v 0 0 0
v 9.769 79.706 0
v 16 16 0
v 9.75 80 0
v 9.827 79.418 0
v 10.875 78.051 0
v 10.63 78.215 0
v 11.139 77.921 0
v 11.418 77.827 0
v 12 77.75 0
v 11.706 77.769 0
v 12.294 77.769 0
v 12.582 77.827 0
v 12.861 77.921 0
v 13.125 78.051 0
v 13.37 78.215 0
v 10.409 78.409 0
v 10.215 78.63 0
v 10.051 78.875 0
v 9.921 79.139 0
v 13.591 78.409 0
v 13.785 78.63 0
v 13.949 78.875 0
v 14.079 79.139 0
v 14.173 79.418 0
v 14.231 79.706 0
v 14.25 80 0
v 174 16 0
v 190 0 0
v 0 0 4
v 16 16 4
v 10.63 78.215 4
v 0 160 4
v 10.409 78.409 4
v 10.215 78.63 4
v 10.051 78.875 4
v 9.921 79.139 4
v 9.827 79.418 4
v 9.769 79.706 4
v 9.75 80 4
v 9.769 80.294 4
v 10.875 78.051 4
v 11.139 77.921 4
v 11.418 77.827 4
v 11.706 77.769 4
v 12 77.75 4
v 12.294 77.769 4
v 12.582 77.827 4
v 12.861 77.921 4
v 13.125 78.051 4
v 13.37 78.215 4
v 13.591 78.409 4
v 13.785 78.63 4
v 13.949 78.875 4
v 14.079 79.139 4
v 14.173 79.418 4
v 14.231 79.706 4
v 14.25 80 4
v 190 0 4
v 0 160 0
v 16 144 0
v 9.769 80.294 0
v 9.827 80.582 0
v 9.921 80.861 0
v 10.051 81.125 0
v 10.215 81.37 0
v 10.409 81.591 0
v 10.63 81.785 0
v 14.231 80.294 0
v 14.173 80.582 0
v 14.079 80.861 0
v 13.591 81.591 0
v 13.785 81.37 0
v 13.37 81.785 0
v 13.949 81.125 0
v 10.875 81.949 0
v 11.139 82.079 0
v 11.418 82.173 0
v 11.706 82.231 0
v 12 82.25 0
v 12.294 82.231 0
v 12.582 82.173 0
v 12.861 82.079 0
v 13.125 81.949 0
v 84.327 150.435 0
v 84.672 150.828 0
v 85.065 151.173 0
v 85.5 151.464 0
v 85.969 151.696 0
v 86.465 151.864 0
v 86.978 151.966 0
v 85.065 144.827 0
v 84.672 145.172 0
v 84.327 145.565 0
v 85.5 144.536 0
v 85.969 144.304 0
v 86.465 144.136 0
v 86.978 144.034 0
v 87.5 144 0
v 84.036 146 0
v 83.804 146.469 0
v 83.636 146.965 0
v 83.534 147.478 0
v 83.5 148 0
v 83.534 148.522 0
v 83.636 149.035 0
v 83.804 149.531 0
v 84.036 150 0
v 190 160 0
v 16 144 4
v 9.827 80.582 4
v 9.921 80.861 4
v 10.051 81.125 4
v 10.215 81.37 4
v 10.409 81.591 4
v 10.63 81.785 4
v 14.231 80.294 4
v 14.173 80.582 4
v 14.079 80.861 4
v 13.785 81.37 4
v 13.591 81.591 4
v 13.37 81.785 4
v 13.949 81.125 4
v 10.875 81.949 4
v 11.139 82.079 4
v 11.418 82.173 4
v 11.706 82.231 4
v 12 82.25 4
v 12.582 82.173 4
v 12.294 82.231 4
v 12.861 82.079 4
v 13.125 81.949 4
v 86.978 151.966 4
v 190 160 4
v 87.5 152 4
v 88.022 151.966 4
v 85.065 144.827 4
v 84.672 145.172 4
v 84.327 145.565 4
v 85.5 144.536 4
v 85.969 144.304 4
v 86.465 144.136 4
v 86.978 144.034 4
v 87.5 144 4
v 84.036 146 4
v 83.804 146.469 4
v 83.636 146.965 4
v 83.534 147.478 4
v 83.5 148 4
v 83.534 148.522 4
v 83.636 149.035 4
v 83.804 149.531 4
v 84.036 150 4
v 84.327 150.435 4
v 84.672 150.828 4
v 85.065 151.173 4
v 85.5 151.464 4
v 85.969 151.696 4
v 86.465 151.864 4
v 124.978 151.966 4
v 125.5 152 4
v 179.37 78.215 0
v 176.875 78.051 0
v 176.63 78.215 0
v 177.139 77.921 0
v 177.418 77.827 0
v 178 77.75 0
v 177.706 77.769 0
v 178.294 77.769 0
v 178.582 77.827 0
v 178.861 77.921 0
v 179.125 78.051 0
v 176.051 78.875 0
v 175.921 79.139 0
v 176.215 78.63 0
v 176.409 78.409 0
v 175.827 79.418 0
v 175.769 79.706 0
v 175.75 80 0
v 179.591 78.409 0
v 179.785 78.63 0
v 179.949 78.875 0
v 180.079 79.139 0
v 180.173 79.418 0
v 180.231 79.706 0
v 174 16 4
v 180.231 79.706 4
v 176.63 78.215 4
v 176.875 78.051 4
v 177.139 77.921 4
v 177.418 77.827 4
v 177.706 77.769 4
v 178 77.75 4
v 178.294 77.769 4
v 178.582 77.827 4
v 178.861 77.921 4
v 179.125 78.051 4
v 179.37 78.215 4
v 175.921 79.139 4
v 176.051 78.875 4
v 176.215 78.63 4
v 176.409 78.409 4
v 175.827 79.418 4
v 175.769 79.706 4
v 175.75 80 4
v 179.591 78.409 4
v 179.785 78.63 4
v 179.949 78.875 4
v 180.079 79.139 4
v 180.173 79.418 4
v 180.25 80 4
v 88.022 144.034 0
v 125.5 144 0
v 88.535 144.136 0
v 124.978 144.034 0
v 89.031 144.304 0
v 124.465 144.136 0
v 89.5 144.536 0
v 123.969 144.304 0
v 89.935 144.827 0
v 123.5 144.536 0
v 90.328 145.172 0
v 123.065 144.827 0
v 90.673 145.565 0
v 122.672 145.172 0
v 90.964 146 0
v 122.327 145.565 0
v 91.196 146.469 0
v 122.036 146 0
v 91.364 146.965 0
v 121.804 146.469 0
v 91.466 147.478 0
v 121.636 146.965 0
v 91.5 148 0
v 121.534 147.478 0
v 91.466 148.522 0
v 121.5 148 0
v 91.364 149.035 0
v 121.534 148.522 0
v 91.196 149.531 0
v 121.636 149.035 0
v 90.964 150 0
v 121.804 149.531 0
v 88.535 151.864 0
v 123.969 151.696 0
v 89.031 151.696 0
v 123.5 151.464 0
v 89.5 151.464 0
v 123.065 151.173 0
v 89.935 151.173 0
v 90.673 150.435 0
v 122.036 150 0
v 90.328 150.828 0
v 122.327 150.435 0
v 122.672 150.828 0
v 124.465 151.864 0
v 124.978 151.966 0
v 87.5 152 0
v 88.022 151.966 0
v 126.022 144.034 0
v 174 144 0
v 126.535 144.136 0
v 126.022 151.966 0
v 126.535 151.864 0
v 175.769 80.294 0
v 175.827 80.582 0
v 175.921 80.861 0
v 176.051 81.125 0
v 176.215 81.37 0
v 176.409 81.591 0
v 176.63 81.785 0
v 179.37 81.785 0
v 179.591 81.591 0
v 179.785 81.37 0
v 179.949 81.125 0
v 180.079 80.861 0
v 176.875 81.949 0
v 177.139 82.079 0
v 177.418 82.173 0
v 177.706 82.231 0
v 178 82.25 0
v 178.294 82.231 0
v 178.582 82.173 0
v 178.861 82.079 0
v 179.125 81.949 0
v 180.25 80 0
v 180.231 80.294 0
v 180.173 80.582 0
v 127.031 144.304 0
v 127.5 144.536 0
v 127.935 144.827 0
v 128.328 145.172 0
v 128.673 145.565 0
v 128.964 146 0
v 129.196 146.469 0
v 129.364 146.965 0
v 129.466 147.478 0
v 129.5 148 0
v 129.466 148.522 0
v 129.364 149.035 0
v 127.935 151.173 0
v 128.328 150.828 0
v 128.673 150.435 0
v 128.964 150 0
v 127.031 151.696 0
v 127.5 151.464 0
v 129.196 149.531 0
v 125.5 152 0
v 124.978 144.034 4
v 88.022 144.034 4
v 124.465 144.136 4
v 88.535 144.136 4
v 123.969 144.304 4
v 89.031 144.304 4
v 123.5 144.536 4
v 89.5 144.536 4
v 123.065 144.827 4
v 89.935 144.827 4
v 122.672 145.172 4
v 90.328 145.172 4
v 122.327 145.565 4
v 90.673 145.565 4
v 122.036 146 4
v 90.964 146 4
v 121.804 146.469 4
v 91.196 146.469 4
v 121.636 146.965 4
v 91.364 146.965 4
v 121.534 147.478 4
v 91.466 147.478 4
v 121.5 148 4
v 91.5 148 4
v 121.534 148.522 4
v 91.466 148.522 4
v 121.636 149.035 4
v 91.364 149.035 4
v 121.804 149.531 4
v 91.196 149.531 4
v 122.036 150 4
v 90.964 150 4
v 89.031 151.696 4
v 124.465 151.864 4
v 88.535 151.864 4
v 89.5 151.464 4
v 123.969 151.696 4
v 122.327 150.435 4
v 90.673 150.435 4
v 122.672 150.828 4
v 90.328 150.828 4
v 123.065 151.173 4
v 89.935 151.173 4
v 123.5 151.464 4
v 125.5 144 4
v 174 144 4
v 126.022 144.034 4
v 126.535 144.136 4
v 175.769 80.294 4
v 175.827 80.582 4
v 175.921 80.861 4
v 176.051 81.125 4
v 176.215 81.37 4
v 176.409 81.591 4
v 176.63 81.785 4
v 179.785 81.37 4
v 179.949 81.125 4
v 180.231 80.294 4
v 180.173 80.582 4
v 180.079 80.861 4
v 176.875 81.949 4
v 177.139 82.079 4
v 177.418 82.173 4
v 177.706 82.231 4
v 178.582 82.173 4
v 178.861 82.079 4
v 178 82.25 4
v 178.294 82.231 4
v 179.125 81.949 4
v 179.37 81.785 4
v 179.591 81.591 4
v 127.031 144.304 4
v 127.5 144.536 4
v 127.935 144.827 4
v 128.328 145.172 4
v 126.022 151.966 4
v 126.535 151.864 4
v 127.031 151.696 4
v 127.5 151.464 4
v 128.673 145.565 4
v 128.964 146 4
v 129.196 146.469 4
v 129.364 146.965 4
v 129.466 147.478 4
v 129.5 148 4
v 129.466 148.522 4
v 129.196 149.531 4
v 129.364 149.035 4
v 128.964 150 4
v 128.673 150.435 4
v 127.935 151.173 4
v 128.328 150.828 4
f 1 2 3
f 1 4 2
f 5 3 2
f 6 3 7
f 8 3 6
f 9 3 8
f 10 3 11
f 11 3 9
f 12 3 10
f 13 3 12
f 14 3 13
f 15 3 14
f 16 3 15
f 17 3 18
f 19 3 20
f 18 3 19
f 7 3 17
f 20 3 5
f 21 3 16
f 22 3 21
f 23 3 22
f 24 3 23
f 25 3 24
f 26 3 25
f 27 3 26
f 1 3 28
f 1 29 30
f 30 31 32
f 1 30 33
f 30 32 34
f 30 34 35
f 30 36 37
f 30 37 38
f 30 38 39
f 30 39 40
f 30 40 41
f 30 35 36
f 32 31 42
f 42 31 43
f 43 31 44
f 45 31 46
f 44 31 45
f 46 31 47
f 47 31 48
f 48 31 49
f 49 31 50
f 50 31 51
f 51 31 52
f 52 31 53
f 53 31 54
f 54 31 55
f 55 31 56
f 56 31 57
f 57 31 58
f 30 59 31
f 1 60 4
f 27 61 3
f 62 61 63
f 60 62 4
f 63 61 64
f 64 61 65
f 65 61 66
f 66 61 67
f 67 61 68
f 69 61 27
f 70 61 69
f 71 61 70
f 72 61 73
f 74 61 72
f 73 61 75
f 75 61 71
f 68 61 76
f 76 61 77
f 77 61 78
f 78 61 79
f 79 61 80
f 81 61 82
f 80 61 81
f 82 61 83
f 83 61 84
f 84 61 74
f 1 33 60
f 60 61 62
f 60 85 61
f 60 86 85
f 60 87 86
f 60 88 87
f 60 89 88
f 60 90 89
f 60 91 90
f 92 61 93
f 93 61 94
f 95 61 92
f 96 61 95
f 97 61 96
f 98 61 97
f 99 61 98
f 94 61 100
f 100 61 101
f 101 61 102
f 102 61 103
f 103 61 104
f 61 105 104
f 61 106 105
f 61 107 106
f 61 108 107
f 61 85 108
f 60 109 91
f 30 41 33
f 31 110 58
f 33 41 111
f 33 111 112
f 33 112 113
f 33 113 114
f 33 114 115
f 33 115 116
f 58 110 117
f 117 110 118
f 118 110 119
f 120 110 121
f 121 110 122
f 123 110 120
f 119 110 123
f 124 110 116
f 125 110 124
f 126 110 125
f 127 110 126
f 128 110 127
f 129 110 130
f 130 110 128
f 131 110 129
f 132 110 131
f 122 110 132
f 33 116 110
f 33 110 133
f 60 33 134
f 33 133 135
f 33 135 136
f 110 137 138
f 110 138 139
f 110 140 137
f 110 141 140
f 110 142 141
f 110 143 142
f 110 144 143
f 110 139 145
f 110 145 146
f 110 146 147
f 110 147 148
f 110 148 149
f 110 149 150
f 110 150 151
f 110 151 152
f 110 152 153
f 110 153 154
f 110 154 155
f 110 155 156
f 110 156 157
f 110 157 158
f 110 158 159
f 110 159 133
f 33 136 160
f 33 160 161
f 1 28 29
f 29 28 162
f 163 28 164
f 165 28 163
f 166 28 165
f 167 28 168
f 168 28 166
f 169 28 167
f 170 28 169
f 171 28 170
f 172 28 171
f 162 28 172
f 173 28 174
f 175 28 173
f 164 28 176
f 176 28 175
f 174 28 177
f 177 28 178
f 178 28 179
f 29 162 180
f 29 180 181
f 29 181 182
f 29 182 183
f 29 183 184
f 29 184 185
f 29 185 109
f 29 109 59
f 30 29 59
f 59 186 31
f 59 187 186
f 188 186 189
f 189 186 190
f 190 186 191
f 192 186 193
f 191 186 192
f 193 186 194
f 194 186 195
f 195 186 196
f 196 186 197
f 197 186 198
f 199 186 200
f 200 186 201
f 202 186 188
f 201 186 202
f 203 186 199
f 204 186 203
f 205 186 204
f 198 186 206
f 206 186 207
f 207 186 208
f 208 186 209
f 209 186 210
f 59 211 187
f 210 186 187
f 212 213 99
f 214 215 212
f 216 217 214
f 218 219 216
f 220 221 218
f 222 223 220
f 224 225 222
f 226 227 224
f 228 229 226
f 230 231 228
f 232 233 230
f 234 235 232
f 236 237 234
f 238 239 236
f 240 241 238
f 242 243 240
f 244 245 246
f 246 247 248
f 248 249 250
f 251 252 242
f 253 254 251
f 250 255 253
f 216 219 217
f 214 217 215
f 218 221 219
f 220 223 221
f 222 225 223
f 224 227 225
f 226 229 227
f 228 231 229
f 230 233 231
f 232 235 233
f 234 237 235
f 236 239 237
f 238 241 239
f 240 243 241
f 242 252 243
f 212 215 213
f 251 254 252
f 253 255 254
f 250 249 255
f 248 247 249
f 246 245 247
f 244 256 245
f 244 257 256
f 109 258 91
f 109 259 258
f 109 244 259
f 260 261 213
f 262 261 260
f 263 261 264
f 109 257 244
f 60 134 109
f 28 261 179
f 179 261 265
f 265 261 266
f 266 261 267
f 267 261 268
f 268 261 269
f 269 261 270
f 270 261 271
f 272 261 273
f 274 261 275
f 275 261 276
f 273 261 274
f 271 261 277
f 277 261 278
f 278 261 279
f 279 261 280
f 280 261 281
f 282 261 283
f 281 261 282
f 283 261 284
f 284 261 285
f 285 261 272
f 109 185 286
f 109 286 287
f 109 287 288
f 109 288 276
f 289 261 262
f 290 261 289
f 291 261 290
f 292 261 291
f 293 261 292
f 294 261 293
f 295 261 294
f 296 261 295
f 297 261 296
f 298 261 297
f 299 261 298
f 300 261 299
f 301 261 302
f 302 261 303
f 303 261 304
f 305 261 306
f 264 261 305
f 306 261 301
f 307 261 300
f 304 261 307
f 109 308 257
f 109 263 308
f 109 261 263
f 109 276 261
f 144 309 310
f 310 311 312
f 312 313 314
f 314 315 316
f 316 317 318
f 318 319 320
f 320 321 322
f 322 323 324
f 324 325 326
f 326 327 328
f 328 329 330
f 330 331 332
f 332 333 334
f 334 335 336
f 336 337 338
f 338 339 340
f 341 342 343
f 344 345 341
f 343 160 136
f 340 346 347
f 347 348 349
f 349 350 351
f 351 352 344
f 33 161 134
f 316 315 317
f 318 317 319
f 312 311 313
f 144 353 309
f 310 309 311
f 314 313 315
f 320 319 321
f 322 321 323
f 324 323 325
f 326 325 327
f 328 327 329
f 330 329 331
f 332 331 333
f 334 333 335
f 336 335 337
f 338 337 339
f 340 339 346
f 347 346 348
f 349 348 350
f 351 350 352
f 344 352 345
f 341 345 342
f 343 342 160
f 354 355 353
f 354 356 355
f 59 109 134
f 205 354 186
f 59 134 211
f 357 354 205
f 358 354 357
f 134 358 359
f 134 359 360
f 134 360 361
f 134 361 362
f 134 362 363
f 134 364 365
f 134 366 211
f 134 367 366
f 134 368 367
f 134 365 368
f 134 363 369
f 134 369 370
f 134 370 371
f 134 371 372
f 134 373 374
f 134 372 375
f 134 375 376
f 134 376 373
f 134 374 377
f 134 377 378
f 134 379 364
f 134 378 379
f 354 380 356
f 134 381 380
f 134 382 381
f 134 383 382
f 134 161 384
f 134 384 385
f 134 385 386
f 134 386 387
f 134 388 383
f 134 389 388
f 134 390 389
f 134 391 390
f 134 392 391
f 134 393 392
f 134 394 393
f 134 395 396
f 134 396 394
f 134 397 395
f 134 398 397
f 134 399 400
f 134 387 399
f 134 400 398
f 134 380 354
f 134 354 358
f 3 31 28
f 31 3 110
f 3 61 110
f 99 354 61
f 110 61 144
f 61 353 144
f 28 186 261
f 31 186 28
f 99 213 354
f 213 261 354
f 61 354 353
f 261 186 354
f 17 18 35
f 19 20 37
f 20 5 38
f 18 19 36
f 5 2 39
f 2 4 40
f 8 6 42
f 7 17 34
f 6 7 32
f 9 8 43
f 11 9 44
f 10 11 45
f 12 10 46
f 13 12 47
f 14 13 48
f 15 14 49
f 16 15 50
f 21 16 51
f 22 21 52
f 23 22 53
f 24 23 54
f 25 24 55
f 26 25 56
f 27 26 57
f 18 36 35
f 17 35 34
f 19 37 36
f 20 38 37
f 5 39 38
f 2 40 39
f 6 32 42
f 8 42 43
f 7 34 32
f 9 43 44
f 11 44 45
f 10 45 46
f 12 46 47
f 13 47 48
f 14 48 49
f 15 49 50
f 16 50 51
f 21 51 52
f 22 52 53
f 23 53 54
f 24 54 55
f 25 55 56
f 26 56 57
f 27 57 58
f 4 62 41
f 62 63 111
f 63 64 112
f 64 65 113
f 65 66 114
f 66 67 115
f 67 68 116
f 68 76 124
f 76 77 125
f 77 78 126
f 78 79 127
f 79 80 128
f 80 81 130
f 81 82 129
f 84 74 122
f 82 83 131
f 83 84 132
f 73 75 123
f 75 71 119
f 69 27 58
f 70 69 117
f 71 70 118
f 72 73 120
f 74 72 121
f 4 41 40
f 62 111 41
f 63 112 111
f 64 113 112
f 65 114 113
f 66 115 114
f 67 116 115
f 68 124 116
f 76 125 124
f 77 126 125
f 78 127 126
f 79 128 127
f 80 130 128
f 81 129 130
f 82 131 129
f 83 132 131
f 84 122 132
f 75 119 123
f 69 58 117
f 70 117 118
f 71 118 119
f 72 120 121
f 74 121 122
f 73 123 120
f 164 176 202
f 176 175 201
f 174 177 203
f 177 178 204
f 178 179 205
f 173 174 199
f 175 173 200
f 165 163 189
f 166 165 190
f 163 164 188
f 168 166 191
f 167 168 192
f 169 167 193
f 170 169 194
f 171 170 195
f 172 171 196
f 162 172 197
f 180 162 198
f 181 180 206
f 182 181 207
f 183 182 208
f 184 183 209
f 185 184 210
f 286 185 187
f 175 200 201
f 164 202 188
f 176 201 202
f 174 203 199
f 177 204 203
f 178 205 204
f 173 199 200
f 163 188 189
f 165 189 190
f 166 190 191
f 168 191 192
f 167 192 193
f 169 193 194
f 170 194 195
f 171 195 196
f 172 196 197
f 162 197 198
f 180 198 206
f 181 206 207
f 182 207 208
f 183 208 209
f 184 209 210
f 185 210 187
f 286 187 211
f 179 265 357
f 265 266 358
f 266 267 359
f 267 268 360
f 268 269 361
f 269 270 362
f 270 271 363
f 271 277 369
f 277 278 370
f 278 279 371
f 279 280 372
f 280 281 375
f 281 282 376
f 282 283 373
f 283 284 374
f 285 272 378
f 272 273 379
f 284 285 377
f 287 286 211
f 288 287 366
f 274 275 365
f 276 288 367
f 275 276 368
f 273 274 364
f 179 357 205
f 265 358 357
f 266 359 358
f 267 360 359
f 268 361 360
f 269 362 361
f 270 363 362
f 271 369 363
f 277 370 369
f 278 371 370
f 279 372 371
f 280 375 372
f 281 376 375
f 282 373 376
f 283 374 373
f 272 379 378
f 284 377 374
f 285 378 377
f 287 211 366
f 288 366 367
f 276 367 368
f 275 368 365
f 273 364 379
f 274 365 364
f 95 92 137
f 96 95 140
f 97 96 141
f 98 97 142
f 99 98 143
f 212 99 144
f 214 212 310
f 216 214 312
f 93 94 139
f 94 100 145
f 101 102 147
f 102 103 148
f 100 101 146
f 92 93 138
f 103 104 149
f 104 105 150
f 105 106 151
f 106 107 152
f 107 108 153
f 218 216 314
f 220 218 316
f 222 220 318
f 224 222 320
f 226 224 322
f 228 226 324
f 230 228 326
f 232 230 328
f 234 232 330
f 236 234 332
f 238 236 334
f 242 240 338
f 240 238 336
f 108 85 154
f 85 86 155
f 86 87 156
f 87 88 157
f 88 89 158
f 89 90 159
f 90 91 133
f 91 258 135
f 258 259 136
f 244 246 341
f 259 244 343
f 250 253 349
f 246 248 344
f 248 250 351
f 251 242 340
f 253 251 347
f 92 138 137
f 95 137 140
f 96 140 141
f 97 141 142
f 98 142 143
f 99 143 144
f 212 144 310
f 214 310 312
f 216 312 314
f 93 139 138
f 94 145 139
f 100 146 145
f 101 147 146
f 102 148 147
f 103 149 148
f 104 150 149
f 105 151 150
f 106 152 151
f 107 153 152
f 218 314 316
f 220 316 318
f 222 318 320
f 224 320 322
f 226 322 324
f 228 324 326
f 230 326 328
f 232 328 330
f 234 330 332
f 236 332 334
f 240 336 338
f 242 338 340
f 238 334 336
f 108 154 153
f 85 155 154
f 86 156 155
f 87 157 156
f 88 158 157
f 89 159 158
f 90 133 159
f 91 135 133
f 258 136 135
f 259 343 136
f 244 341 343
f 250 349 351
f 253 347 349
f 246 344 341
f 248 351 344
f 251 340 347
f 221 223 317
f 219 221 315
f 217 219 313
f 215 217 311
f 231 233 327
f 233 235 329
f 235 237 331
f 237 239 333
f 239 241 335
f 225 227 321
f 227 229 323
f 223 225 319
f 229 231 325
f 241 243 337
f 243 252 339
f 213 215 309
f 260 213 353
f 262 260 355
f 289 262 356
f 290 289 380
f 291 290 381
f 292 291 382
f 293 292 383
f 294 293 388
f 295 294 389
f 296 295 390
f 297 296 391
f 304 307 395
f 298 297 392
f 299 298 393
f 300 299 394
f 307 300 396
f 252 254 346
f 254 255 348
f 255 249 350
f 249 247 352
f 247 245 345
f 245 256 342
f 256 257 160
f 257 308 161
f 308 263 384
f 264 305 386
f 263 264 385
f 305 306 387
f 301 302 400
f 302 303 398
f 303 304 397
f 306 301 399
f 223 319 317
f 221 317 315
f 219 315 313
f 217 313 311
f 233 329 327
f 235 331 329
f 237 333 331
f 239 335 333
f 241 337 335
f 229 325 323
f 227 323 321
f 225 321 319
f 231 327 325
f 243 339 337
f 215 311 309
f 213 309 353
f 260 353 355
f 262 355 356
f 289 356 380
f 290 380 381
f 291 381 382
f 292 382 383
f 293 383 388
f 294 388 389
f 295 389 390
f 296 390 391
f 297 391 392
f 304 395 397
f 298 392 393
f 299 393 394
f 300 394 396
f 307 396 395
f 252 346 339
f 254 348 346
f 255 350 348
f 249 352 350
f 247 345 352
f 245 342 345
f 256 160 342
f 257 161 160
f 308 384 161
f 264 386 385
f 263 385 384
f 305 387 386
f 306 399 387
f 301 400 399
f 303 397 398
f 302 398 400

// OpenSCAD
// GENERATED. MC2 trial geometry in mm.
difference() {
cube([190.0,160,4.0]);
translate([16, 16, -0.1]) { cube([158.0,128,4.2]); }
translate([12, 80.0, -0.1]) { cylinder(d=4.5,h=4.2,$fn=48); }
translate([178.0, 80.0, -0.1]) { cylinder(d=4.5,h=4.2,$fn=48); }
translate([87.5, 148, -0.1]) { cylinder(d=8,h=4.2,$fn=48); }
translate([125.5, 148, -0.1]) { cylinder(d=8,h=4.2,$fn=48); }
}
